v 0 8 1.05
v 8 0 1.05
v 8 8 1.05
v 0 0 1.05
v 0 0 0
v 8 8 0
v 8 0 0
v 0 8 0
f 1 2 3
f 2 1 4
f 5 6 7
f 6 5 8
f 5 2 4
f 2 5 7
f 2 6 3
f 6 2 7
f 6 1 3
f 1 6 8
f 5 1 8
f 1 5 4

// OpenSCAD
/* Warning, this is a very basic generator with a lot of approximation 
input data : [TFBGA, AYB, 8x8x1.05mm, 256, , A, C04-21133A]
generated by com.zoubworld.electronics.cad.model3d.Basic
Date : Sun Feb 15 10:50:49 CET 2026
*/

//body
color("black")
translate([0,0,0])
cube([8.0,8.0,1.05], center=false);
